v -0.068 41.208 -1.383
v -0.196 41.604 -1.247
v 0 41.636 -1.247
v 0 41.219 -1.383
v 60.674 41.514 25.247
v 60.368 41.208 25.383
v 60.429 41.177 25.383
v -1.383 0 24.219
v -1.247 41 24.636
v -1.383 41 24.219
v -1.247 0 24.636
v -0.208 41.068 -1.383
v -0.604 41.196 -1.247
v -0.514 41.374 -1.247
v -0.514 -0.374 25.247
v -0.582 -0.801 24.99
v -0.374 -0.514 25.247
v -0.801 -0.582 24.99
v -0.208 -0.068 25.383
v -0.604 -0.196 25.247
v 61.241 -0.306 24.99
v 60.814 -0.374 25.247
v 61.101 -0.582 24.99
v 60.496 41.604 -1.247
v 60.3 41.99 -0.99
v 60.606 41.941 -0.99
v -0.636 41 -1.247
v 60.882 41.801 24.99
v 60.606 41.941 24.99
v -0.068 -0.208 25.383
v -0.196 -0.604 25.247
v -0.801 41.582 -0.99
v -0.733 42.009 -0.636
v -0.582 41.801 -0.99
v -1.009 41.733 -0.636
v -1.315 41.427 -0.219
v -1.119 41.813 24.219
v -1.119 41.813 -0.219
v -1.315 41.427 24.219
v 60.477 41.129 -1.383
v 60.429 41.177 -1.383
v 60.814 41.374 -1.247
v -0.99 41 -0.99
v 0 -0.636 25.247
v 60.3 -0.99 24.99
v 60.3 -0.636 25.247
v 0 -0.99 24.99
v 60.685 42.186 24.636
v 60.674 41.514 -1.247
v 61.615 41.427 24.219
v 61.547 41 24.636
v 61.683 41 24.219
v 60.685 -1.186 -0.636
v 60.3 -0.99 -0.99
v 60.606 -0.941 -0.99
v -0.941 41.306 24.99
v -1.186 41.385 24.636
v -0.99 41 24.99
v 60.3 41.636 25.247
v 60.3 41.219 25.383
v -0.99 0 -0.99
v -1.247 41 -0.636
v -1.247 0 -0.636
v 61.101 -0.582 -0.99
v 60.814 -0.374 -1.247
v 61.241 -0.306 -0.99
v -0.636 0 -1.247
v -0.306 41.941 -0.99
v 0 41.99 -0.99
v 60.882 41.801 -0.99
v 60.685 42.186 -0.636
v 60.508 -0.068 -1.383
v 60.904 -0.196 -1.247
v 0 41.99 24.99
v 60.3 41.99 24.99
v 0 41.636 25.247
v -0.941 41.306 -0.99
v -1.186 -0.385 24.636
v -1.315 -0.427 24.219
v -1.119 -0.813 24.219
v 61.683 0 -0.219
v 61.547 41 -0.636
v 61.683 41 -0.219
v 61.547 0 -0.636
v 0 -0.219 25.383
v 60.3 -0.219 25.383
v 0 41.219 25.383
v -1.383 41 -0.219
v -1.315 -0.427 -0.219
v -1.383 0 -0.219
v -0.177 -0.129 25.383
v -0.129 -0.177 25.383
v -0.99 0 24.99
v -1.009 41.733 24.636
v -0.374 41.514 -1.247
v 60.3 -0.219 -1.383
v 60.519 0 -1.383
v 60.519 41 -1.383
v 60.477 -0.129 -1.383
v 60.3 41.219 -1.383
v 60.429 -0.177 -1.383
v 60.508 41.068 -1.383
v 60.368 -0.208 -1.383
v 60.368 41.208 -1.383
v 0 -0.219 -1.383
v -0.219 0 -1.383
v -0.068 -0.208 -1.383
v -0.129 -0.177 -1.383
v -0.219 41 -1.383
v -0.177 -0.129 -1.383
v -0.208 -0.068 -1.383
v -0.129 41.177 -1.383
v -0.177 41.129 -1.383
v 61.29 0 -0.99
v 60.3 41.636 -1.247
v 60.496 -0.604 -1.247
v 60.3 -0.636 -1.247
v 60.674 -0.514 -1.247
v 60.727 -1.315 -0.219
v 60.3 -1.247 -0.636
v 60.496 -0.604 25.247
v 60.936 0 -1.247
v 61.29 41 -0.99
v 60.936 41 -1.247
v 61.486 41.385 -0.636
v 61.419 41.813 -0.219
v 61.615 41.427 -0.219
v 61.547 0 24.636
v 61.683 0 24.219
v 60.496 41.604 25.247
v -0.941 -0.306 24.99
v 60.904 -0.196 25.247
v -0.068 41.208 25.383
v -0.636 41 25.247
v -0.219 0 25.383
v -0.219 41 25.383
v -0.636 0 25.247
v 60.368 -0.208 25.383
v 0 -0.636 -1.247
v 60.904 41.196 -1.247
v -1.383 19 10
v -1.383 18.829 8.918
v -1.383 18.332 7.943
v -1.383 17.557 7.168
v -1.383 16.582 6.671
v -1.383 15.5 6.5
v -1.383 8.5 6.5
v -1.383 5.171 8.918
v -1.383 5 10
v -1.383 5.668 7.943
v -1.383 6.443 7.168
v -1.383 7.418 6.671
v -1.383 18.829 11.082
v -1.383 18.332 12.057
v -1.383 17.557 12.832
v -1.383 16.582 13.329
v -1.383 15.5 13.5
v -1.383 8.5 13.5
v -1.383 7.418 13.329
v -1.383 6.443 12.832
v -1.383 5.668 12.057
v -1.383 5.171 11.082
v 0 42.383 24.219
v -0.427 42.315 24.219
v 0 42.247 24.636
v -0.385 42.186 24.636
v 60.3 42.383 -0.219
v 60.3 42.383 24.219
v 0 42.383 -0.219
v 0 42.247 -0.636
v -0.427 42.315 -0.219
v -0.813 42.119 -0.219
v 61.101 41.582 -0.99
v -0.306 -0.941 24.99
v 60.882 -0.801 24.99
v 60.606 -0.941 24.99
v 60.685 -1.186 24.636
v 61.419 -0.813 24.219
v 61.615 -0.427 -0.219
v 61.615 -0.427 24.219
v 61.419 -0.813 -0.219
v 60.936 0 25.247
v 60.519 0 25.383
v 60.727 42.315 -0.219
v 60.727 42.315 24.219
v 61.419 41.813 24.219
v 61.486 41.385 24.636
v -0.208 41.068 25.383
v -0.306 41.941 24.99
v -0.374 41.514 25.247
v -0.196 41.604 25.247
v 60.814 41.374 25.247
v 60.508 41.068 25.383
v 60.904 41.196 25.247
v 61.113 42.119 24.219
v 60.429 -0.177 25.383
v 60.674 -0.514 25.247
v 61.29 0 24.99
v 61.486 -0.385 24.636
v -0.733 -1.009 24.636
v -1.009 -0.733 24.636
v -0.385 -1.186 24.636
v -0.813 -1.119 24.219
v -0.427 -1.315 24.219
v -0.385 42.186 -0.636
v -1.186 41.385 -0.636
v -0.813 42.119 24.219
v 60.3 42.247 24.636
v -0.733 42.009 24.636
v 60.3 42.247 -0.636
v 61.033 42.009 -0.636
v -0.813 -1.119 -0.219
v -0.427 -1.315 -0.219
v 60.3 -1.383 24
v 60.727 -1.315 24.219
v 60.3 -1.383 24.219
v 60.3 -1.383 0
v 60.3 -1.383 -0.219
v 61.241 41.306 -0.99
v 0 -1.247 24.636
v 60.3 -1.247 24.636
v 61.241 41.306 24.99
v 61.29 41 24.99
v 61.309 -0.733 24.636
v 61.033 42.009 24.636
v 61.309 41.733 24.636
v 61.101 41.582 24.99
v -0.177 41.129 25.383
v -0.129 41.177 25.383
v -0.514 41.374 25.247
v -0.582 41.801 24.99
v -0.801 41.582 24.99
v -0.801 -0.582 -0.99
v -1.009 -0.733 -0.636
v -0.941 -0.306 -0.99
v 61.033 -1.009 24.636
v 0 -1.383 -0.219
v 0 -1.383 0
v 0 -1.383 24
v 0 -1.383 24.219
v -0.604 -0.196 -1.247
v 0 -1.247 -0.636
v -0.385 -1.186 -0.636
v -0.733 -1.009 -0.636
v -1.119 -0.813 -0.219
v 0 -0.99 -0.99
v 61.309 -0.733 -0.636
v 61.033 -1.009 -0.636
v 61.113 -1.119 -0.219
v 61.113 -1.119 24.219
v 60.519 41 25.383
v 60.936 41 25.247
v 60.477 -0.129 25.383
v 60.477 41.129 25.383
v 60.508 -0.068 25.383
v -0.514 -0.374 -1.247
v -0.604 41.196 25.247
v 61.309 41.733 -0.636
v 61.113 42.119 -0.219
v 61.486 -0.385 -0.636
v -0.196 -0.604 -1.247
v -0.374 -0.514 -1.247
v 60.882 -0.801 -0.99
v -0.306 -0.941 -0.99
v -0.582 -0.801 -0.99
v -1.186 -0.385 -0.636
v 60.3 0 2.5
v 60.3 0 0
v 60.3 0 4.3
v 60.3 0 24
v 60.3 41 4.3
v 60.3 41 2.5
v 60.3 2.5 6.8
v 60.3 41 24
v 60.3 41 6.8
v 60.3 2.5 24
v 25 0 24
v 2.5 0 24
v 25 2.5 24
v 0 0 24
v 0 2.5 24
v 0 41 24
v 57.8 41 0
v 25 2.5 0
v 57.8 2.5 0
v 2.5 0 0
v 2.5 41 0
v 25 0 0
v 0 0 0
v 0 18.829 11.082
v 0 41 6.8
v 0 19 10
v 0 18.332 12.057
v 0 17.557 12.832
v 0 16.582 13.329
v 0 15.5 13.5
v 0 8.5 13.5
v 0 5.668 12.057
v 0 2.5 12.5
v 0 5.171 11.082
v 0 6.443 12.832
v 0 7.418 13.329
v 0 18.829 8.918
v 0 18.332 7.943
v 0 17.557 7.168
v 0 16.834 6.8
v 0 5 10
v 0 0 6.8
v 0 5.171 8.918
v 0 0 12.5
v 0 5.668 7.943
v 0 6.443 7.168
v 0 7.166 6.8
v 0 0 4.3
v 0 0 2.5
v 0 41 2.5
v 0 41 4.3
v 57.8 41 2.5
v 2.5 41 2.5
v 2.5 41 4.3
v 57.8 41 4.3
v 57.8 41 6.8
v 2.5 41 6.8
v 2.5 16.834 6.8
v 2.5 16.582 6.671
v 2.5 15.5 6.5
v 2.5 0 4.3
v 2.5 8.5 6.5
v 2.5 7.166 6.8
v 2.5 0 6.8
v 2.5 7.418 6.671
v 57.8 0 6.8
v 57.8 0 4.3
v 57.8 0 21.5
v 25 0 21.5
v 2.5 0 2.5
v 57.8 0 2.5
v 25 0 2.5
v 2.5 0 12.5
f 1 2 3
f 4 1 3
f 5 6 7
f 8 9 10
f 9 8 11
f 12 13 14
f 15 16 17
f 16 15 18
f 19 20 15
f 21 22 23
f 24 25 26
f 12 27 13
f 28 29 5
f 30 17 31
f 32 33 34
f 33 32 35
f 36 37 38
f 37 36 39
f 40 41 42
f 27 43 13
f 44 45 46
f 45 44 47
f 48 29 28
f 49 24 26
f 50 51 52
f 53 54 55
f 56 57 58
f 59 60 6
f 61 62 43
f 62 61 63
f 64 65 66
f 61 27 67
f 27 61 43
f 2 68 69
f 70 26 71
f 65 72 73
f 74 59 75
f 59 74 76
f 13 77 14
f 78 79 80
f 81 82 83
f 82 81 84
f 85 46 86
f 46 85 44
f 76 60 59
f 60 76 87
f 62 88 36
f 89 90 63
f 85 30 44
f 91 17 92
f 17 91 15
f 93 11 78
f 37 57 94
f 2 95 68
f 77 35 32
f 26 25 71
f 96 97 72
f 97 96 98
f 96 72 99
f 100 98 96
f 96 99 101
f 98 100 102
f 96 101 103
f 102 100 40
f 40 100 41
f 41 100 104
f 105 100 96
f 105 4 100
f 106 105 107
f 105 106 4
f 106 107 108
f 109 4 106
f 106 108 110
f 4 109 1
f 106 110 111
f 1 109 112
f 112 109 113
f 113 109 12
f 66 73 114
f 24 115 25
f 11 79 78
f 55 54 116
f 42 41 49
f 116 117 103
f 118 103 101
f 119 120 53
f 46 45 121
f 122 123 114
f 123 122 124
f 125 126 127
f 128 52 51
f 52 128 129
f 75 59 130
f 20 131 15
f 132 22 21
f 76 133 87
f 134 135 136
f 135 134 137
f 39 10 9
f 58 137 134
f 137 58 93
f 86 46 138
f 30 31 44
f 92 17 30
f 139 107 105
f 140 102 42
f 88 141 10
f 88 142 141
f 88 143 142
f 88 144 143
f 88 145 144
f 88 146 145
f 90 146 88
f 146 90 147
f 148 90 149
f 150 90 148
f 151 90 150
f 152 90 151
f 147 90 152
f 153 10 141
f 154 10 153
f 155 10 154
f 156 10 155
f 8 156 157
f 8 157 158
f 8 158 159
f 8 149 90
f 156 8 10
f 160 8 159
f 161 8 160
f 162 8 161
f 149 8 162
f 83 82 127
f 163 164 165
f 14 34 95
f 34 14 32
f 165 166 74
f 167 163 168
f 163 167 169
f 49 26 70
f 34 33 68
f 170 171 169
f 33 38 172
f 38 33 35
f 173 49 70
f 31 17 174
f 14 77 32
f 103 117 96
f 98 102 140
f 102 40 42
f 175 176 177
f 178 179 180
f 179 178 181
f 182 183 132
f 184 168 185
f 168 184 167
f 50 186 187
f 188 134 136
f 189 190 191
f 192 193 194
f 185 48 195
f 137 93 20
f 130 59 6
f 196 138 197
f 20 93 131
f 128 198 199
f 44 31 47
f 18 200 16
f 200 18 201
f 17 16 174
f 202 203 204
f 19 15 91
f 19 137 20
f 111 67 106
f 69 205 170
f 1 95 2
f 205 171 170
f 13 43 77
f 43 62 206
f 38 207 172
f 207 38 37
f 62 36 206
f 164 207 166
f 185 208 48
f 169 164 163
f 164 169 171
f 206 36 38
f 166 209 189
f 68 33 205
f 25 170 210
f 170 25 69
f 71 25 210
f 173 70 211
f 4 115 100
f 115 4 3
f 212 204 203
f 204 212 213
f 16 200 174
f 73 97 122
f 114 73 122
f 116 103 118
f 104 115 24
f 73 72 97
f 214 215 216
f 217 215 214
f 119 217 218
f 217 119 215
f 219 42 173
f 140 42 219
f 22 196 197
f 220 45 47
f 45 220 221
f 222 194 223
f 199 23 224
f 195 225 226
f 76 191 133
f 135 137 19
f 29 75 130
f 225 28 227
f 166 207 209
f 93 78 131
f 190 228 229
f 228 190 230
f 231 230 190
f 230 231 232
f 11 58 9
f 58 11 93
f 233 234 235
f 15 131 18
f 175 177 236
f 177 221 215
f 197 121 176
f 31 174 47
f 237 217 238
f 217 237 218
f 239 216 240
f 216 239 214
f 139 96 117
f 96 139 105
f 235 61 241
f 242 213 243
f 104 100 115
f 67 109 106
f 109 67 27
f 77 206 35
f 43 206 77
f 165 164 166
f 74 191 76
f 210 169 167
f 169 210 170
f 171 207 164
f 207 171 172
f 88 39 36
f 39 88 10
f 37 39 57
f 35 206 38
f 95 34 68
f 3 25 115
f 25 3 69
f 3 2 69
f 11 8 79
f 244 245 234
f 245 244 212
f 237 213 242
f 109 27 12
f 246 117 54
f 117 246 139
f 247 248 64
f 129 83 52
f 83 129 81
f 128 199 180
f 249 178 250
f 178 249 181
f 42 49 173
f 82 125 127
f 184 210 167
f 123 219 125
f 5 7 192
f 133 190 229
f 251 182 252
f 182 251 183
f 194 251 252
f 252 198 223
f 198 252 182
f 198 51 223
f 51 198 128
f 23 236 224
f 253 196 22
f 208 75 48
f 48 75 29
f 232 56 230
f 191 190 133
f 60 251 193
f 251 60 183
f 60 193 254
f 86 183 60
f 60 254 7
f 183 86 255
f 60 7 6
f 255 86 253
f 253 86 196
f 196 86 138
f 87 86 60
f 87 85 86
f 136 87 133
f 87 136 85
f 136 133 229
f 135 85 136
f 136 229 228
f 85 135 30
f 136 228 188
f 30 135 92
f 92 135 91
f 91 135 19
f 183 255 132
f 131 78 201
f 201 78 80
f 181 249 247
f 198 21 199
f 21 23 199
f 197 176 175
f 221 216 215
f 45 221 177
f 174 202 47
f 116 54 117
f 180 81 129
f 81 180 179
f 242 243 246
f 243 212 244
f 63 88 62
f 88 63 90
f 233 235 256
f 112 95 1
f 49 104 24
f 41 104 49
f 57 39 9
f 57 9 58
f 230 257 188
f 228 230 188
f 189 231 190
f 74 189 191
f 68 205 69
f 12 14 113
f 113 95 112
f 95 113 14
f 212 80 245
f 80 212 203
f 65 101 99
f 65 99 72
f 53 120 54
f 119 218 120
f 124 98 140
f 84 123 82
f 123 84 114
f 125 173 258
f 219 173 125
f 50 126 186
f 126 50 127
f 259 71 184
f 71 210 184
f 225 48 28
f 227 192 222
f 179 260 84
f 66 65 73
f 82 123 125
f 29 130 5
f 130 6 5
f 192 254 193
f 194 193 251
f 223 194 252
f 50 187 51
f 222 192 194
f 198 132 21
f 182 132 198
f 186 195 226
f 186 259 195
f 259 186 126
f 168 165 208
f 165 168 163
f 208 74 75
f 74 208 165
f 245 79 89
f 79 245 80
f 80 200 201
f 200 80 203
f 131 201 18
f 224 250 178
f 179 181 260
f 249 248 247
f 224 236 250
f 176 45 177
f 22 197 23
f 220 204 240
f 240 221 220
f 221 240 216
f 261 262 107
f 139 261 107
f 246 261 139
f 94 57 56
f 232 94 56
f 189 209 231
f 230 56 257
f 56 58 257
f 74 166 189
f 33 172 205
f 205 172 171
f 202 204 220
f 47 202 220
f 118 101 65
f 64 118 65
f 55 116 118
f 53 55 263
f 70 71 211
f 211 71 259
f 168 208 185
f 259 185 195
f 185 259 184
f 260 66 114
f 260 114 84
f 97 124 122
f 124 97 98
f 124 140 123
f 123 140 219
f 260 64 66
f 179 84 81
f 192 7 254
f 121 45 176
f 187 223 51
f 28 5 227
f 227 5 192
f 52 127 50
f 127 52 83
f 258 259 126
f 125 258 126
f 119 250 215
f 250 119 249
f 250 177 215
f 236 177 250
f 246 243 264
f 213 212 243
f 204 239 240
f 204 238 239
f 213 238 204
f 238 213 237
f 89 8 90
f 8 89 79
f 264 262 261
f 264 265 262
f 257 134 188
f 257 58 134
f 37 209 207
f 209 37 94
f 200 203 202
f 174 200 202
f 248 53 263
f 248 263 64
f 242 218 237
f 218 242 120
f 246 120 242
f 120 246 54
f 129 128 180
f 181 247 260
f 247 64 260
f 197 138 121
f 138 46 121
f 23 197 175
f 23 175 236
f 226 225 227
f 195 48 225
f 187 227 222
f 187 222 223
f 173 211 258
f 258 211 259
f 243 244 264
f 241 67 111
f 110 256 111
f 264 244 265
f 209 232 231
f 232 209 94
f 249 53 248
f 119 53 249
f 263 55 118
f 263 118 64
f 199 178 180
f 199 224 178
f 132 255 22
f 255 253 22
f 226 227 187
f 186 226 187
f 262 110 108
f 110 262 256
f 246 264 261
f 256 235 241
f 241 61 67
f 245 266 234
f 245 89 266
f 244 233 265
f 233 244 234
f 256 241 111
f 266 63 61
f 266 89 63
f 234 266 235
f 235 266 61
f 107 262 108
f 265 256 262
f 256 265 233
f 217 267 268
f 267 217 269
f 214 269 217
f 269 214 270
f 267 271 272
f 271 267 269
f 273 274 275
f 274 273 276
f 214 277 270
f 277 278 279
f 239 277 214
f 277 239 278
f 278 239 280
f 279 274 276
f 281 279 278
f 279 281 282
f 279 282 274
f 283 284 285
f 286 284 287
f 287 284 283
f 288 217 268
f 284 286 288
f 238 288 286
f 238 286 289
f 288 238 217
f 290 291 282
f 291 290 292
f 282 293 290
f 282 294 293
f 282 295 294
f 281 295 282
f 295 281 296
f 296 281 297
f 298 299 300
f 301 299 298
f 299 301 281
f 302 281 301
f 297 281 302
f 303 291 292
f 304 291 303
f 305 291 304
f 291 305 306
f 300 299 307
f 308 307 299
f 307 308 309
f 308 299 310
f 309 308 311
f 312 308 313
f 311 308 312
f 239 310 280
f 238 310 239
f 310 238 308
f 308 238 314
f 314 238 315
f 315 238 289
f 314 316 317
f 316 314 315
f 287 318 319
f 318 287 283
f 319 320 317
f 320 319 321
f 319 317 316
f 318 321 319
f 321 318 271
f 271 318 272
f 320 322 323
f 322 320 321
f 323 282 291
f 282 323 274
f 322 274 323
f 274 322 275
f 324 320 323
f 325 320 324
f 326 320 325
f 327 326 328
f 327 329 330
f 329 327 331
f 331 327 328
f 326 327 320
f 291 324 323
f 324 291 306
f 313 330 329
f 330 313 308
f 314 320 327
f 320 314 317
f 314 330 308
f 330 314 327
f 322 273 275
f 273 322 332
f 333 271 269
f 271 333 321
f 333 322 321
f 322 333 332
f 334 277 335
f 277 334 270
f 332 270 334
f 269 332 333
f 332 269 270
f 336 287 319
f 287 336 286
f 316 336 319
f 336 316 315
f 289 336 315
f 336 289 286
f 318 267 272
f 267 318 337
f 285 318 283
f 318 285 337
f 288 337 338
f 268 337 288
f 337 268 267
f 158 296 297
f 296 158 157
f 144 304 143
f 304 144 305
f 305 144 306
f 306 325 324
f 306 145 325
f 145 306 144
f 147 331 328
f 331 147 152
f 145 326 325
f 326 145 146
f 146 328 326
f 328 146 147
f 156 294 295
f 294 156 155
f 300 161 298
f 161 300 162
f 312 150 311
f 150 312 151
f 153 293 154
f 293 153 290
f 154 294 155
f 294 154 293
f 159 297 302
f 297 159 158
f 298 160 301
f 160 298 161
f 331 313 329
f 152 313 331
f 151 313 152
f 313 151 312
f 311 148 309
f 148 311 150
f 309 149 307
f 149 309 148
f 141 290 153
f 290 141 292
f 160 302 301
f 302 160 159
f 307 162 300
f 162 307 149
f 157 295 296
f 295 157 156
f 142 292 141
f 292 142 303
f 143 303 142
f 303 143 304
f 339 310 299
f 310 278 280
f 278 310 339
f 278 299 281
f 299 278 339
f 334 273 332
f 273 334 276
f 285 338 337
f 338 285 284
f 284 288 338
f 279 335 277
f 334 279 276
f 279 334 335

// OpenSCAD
$fn=20;

//breite = 70;


breite = 60.3;
tiefe = 41;
hoehe = 21+3;

schiene = 2.5;
platinendicke = 1.8;


wanddicke = 1.4;
edge_radius = wanddicke;

module schienen() {
    cube([schiene, tiefe, schiene]);

    translate([breite-schiene, 0, 0])
    cube([schiene, tiefe, schiene]);

    translate([0, 0, schiene + platinendicke]) {
        cube([schiene, tiefe, schiene]);
        
        translate([breite-schiene, 0, 0])
        cube([schiene, tiefe, schiene]);
    }
}

/*
// output terminals
module output_terminals() {
    translate([-4, 0, 0]) // display rand überstand breite
    color([0,0,1]) {
        translate([terminal_box_breite/2,
                   1*tiefe/4,
                   hoehe])
        cylinder(d=terminal_durchmesser, wanddicke);

        translate([terminal_box_breite/2,
                   3*tiefe/4,
                   hoehe])
        cylinder(d=terminal_durchmesser, wanddicke);
    };
}
*/

module usbc_port() {
    platinenunterkante_bis_mitte_buchse = 7;
    from_bottom_insinde = schiene + platinenunterkante_bis_mitte_buchse - 6/2;
    usbc_port_width = 12;
    port_height = 7;
    color([1,1,0])
    translate([
        -wanddicke,
        port_height/2+5, //tiefe/2+6/2-usbc_port_width/2,
        port_height/2+from_bottom_insinde])
    rotate([90, 0, 90])
    hull() {
        translate([0, 0, 0])
          cylinder(h=wanddicke+schiene, d=port_height);
        translate([7, 0, 0])
          cylinder(h=wanddicke+schiene, d=port_height);
    }
}

// deckelauflage
translate([0, 0, 10+schiene])
linear_extrude(hoehe -10-schiene)
polygon(points=[[0,0], [0, 2.5], [2.5, 0]]);

translate([breite, 0, hoehe])
rotate([0, 180, 0])
linear_extrude(hoehe-5)
polygon(points=[[0,0], [0, 2.5], [2.5, 0]]);

translate([breite, 0, 0])
rotate([0, -90, 0])
linear_extrude(breite-25)
polygon(points=[[0,0], [0, 2.5], [2.5, 0]]);

translate([25, 0, hoehe])
rotate([0, 90, 0])
linear_extrude(breite-25)
polygon(points=[[0,0], [0, 2.5], [2.5, 0]]);


difference() {
    union() {
        difference() {
            hull() {
                sphere(r=edge_radius);
                translate([breite, 0, 0]) sphere(r=edge_radius);
                translate([breite, tiefe, 0]) sphere(r=edge_radius);
                translate([0, tiefe, 0]) sphere(r=edge_radius);
                translate([0, 0, hoehe]) {
                    sphere(r=edge_radius);
                    translate([breite, 0, 0]) sphere(r=edge_radius);
                    translate([breite, tiefe, 0]) sphere(r=edge_radius);
                    translate([0, tiefe, 0]) sphere(r=edge_radius);
                }
            }
            union() {
                translate([0, 0-10, 0]) cube([breite, tiefe+10, hoehe]);
                //display();
                //output_terminals();

            }
        }
        schienen();
    }
    union() {
        usbc_port();
    }
}
     


//usbc_port();
